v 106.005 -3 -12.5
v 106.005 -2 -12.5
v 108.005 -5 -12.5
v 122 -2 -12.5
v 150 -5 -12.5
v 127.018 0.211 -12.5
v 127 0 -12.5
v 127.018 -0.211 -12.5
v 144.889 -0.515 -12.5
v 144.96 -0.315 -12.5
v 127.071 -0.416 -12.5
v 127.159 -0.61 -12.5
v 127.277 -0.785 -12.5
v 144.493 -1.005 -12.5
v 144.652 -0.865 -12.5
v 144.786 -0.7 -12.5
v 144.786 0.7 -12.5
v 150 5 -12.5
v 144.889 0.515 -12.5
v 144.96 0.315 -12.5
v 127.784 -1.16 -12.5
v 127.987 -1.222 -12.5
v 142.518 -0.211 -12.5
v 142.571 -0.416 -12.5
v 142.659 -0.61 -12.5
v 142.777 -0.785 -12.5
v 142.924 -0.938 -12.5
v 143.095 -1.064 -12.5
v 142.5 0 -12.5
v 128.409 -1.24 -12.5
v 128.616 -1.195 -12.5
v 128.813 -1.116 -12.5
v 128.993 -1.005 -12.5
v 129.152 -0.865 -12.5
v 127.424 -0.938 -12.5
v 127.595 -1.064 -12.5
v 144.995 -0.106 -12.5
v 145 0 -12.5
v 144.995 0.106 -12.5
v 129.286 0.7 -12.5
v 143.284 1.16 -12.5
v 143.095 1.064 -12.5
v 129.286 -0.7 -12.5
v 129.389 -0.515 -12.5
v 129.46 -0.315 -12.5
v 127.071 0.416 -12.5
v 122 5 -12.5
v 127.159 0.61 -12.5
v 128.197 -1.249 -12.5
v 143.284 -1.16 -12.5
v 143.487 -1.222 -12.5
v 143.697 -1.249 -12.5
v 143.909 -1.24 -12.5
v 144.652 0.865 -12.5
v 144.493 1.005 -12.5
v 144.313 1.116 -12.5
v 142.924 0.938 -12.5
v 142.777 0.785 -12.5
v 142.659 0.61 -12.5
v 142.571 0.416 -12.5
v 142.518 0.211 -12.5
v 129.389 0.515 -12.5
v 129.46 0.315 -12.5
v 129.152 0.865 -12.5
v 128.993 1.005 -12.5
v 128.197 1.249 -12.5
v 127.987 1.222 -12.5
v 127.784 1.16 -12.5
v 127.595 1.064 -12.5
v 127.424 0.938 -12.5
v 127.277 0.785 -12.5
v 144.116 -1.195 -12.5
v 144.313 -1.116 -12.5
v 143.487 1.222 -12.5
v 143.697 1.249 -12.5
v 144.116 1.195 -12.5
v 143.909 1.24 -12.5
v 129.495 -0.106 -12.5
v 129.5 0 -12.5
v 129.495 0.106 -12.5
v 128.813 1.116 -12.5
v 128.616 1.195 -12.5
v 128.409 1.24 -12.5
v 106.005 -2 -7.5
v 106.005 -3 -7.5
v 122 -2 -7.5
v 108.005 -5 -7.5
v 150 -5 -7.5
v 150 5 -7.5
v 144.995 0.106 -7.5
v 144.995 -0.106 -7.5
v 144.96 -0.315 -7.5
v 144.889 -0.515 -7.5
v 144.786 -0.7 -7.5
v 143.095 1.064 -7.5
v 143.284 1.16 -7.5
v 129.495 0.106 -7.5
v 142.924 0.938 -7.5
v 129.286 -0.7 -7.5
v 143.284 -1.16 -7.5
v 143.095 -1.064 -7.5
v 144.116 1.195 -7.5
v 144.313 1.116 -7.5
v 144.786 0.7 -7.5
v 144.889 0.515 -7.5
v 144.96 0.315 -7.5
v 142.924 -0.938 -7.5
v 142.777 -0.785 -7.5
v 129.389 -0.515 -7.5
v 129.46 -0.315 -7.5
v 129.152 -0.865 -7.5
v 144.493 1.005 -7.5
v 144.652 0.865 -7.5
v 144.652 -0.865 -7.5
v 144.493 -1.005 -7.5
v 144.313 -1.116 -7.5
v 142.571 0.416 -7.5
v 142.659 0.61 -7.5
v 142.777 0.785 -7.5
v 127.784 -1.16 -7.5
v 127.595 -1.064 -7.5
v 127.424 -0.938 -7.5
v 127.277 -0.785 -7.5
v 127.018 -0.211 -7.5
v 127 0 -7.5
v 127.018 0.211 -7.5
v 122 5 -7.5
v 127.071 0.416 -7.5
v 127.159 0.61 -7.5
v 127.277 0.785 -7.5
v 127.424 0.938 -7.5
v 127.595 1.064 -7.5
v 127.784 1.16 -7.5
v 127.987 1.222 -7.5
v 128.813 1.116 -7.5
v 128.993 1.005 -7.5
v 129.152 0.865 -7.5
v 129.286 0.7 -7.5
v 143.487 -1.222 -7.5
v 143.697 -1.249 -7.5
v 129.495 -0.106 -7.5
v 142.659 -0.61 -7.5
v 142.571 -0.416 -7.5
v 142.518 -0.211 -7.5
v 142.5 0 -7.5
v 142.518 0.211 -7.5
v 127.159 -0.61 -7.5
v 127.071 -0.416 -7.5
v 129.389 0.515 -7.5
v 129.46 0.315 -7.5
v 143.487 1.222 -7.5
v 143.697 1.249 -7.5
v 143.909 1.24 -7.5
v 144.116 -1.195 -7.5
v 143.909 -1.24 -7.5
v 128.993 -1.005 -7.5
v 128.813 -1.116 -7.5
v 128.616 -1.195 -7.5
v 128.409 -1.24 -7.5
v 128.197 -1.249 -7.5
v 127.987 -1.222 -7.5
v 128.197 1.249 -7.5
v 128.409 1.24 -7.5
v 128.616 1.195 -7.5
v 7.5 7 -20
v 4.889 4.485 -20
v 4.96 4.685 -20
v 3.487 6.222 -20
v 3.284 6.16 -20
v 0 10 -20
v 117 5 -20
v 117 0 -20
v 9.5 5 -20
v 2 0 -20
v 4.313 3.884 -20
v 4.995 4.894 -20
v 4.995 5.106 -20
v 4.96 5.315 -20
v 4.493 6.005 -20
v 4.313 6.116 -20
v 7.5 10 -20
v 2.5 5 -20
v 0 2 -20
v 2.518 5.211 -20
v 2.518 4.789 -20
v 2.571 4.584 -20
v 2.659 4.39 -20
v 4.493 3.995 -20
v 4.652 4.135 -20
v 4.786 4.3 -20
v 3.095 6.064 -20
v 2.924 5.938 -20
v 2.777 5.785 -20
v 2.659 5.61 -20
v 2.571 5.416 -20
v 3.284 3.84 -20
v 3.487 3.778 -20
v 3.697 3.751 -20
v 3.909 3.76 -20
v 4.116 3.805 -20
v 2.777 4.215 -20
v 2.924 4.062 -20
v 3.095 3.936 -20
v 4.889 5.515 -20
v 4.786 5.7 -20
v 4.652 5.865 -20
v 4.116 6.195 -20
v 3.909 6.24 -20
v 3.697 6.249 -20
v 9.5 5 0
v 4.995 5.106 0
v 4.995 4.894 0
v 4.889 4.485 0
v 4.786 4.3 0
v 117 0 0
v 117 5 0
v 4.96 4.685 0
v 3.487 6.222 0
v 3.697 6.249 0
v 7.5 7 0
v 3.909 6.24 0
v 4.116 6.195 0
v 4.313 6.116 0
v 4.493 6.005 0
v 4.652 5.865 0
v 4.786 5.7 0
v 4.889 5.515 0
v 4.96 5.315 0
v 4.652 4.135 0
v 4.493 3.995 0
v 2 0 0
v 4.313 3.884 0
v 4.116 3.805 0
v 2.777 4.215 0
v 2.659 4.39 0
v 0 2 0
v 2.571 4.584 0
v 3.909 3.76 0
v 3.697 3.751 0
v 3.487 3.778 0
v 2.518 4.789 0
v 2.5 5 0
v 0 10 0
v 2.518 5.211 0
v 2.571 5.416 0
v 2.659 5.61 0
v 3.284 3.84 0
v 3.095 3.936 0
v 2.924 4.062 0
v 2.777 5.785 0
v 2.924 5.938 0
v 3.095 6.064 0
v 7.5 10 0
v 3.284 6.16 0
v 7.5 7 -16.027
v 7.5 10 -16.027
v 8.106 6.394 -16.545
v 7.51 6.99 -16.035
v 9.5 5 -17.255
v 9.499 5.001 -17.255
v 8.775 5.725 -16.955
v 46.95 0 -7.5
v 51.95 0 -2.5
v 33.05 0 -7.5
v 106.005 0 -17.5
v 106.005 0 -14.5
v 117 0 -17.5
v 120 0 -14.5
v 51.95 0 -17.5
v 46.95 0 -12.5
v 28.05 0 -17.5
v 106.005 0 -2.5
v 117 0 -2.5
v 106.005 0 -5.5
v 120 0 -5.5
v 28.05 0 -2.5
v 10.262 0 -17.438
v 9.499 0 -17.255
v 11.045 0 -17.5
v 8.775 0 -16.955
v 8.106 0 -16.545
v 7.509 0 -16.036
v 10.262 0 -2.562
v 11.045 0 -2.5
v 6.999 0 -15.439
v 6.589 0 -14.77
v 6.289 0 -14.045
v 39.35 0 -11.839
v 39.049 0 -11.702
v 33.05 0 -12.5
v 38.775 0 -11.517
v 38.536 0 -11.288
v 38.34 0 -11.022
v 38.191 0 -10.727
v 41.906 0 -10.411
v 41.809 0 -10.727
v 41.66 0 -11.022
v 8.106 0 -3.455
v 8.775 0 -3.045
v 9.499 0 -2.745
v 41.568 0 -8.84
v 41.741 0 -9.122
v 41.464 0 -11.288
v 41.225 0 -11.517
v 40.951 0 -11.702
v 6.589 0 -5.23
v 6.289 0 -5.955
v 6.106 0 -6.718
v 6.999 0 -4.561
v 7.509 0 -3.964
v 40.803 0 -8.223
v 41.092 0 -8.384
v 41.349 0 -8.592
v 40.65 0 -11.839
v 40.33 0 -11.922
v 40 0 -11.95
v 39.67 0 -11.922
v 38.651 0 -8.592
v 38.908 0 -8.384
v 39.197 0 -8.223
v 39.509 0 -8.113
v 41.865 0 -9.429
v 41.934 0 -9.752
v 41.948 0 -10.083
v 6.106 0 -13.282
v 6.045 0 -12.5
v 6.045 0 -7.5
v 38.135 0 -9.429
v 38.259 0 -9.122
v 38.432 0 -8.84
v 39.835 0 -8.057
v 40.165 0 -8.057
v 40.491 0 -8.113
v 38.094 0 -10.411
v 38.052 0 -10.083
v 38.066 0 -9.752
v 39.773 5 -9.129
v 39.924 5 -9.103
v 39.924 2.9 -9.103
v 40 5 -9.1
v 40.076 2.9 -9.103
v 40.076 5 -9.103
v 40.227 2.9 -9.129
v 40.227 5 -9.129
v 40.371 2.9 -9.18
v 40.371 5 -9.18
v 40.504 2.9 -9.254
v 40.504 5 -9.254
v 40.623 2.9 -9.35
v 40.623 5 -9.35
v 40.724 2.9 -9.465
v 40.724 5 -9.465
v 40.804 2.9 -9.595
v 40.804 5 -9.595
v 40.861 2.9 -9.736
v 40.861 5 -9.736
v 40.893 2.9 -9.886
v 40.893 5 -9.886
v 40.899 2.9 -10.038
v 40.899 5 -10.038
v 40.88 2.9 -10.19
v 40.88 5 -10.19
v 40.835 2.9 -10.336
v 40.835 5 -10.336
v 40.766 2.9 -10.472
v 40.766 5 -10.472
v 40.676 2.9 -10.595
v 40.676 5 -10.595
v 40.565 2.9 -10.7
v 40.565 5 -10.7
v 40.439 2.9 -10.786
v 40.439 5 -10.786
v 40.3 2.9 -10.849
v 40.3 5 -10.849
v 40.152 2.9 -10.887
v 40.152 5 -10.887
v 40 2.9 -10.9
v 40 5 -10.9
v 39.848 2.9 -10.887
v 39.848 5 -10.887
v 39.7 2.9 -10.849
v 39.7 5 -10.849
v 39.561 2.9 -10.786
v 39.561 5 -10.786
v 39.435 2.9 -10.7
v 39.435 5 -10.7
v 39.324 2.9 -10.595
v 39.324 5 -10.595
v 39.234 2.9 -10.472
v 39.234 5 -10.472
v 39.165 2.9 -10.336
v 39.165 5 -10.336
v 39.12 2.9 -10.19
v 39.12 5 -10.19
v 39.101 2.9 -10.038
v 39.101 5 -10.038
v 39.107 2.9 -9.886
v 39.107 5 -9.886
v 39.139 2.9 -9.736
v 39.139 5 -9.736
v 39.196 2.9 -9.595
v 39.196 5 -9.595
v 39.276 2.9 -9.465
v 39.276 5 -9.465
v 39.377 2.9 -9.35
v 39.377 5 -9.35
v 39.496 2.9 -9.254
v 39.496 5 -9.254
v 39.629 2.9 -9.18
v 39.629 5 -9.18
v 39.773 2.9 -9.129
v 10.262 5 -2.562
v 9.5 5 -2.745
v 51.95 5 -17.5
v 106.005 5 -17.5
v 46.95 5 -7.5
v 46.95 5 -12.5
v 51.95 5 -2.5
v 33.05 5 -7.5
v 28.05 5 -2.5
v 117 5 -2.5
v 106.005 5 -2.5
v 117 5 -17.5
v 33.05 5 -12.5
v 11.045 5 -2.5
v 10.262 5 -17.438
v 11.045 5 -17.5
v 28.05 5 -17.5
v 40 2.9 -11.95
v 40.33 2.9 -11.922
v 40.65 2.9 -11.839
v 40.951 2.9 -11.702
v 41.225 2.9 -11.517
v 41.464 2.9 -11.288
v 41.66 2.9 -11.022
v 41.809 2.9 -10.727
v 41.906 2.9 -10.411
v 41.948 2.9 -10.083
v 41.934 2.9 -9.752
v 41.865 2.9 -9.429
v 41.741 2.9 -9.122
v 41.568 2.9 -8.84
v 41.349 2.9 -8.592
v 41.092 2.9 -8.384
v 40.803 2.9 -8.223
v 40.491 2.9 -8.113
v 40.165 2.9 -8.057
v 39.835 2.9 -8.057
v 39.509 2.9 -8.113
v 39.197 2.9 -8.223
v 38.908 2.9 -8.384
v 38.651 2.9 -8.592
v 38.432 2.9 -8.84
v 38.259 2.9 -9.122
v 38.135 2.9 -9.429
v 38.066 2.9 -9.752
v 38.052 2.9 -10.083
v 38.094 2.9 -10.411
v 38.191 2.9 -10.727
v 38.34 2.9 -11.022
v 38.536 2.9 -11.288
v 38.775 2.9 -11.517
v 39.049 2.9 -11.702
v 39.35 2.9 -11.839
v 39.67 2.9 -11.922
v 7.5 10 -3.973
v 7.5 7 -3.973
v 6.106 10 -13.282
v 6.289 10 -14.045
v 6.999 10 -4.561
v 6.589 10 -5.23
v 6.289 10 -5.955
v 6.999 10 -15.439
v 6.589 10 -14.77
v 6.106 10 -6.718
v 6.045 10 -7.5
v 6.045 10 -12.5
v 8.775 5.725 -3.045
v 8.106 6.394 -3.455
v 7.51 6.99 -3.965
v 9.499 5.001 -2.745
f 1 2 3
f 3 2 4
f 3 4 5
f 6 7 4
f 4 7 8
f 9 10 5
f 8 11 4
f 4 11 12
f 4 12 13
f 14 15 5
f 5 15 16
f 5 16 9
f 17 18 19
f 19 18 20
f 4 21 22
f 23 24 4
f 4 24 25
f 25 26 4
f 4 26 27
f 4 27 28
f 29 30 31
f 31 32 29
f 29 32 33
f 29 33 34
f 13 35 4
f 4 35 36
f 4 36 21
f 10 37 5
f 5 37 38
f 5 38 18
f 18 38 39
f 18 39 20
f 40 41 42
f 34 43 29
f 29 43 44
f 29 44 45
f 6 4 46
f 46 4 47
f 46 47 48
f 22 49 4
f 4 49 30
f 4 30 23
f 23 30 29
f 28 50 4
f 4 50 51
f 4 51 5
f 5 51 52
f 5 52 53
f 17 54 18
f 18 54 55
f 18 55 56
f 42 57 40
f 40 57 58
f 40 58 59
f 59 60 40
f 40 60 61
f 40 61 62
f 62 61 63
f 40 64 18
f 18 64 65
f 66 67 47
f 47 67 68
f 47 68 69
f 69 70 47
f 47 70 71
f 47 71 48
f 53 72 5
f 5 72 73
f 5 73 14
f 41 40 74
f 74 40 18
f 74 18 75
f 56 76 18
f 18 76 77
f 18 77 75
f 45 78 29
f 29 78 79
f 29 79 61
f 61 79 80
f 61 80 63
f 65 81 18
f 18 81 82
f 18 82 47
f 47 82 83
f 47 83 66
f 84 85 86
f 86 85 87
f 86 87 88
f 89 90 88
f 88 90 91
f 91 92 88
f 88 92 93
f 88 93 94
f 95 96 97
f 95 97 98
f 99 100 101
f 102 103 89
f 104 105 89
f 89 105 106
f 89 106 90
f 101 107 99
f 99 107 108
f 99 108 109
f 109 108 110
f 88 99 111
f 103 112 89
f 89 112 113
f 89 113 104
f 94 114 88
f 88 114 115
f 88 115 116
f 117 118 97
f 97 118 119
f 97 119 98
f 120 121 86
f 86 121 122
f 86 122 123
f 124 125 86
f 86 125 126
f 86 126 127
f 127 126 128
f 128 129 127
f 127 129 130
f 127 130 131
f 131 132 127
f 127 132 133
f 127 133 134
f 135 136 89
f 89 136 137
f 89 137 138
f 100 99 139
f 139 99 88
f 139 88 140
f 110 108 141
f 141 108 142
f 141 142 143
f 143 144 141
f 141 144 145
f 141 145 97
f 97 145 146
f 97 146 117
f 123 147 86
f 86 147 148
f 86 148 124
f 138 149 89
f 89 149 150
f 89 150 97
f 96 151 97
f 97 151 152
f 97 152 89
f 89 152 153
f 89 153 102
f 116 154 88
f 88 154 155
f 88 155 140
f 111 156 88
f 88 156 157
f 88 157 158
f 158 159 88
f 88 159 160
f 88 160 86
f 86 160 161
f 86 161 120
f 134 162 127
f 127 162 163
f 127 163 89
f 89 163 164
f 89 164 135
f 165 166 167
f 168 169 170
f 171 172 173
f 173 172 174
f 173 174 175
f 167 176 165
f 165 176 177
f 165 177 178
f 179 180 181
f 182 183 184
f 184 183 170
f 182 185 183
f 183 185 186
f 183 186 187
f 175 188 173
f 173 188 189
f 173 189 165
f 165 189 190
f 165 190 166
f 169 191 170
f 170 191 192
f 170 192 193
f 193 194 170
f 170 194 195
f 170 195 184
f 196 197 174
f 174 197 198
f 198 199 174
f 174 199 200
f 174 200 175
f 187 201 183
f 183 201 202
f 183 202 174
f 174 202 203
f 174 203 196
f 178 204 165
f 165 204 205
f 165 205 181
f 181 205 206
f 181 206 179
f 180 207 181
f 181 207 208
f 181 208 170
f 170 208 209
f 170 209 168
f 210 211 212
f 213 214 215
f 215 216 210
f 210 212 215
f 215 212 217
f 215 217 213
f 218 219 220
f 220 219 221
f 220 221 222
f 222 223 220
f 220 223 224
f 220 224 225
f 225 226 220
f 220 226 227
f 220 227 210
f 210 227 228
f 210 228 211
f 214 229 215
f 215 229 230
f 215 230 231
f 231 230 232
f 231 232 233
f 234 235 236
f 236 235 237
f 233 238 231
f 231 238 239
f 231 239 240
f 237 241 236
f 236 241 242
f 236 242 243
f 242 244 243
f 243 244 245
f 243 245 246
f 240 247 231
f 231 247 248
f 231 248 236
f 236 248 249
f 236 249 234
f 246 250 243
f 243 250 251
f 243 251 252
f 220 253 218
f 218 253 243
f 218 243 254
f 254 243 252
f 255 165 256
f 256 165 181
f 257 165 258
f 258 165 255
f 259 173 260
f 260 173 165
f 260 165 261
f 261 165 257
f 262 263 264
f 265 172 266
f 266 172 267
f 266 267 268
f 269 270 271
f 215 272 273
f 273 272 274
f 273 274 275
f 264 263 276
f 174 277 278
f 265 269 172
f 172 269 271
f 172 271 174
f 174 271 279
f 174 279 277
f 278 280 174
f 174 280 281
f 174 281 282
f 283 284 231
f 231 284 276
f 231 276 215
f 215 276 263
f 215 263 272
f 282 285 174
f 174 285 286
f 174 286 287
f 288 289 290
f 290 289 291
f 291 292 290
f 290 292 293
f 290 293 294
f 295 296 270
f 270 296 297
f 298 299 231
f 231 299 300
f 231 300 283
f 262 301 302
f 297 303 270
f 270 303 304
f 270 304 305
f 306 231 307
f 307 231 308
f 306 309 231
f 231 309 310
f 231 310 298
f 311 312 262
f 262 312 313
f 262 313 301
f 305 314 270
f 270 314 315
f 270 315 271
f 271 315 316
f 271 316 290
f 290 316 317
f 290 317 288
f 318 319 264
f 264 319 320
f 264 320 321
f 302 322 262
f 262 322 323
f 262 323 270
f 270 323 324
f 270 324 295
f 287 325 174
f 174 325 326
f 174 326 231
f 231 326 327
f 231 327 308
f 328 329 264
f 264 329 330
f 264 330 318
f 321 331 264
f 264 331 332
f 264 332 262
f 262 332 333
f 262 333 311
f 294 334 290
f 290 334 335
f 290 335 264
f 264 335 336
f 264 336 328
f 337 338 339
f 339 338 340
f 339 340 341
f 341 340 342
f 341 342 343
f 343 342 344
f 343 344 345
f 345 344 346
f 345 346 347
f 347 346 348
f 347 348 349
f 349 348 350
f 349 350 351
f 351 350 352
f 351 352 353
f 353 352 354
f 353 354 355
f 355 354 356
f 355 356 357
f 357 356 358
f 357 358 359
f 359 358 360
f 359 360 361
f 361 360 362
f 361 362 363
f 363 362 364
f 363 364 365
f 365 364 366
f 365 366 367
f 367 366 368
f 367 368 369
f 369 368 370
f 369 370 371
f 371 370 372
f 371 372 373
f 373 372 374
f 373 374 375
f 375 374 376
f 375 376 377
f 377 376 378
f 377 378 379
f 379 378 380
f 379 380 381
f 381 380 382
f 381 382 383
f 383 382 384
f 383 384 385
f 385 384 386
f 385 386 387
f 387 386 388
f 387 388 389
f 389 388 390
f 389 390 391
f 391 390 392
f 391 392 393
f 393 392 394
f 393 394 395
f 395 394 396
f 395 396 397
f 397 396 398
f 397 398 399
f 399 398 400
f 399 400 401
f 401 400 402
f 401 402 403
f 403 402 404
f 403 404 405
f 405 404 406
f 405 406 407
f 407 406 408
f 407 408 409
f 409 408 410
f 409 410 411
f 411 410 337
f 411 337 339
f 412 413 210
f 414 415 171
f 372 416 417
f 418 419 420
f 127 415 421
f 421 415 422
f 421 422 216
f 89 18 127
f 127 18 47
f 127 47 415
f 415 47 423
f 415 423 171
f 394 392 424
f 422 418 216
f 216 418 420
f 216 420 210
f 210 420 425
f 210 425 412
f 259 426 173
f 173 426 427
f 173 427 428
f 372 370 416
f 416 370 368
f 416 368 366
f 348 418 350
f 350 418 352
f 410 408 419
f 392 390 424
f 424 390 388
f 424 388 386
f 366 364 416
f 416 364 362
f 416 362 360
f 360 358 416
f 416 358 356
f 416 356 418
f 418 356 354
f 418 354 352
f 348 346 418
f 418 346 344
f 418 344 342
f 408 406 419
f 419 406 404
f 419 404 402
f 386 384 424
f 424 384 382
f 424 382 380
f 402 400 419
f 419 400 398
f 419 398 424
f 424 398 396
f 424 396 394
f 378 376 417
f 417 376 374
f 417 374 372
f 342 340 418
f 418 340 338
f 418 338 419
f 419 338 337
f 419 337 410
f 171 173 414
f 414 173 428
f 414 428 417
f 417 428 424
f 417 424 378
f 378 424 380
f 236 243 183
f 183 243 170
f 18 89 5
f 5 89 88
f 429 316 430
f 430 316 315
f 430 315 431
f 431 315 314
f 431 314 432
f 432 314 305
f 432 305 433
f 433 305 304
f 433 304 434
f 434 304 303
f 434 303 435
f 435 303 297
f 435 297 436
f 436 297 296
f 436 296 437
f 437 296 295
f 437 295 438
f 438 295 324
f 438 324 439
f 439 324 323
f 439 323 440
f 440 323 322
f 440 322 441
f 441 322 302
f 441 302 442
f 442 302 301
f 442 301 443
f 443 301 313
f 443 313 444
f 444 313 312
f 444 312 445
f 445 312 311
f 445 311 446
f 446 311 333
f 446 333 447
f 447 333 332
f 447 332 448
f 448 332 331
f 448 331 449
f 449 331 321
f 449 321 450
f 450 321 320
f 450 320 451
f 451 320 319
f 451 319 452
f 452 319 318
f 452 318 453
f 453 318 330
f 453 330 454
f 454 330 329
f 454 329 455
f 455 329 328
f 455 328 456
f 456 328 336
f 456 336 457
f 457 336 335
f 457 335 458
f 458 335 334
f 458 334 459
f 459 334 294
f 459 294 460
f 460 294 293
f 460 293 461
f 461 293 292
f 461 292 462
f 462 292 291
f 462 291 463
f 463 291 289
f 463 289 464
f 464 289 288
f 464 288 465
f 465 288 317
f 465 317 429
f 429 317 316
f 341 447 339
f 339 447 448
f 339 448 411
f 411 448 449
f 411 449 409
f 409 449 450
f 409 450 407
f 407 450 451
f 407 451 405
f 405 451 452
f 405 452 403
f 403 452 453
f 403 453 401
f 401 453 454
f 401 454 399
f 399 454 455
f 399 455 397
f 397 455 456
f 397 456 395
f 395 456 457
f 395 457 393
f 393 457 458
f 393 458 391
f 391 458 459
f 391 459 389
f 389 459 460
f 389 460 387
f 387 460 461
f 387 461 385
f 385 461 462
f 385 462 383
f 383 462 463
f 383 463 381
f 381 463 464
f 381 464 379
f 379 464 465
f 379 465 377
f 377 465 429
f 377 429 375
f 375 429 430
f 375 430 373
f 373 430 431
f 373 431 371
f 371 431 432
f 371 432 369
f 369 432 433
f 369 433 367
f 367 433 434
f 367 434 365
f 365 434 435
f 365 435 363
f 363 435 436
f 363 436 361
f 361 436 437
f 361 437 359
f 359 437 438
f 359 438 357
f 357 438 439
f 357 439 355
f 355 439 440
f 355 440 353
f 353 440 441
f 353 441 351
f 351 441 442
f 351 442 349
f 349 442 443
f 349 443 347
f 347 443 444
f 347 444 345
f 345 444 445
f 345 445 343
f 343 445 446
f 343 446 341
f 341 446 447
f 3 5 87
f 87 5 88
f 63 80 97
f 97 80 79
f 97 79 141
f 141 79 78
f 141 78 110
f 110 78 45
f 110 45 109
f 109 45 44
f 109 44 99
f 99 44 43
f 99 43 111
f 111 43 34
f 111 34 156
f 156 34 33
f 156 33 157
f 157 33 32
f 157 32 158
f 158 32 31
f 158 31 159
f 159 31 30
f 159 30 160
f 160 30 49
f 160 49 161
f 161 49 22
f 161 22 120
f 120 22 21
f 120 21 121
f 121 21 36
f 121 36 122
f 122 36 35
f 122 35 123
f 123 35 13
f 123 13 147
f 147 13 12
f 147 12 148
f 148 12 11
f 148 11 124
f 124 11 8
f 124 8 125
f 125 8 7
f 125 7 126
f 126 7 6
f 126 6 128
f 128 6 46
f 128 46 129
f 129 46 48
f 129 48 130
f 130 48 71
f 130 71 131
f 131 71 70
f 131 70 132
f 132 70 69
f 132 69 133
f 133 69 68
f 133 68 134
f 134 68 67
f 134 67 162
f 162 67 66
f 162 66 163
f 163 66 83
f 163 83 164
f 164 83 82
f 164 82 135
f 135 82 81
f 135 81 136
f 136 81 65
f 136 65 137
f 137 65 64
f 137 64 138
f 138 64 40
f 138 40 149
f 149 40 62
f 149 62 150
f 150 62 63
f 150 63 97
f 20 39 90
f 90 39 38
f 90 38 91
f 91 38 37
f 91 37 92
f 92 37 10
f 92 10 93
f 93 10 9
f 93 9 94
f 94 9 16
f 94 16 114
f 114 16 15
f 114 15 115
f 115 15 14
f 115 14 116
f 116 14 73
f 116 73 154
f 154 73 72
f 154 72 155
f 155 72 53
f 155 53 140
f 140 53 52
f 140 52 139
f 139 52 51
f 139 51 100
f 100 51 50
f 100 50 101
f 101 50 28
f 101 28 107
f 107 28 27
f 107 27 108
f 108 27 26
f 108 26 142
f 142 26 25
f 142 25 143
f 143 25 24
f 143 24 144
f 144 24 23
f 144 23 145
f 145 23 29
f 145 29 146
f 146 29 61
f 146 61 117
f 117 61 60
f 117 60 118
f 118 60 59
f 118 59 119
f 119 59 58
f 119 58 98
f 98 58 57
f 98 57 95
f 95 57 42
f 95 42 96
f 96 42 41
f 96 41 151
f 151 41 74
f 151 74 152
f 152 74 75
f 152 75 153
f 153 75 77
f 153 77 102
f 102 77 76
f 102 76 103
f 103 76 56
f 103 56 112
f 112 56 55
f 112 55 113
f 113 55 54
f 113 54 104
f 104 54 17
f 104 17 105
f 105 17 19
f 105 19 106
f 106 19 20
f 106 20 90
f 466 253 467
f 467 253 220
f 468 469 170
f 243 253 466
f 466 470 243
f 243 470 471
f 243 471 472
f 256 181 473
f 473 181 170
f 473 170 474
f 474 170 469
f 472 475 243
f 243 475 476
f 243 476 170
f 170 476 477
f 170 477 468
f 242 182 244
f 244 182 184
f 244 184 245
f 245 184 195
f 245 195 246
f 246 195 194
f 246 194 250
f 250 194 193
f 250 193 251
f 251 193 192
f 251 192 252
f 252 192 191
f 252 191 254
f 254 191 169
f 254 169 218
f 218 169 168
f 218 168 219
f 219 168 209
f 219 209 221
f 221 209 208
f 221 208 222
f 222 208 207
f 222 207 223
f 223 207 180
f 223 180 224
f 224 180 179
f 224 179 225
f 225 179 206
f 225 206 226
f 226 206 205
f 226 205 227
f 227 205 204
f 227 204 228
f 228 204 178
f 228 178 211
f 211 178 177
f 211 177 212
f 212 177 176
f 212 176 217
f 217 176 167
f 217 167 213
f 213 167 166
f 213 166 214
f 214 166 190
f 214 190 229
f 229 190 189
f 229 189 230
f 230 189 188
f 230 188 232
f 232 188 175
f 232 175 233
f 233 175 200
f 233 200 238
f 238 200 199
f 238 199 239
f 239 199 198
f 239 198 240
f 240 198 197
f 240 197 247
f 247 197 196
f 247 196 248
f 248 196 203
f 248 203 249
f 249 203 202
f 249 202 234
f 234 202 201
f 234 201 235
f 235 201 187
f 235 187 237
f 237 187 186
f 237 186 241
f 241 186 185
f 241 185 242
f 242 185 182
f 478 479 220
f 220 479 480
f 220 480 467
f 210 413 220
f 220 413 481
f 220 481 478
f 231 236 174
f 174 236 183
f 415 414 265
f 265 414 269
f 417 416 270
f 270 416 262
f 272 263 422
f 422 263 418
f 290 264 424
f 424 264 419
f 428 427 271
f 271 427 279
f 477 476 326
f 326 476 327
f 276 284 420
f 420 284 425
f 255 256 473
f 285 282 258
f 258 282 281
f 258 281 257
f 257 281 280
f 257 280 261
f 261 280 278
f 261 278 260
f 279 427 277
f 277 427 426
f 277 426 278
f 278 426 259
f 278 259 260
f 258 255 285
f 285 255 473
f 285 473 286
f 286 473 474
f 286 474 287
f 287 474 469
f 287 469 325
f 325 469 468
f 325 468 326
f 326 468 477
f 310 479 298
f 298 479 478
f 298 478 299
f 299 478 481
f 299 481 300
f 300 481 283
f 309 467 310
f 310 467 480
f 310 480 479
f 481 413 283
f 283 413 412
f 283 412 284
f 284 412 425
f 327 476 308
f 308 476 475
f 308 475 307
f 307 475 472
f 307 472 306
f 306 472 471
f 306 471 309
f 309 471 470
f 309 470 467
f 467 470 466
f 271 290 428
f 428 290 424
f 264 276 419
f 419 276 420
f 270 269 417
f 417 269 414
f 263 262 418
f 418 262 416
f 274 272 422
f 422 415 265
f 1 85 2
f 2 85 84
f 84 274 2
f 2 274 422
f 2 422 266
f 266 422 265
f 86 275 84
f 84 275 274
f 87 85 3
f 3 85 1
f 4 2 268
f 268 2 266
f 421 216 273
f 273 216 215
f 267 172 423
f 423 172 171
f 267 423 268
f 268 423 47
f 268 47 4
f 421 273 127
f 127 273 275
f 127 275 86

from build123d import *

# Parameters (mm, degrees)
SKETCH1_W           = 150
SKETCH1_H           = 20
SKETCH1_R           = 0.9
BOSS_EXTRUDE1_DEPTH = 5
SKETCH2_R           = 1.95
CUT_EXTRUDE1_DEPTH  = 2.9
SKETCH3_W           = 55.59541546
SKETCH3_H           = 20
BOSS_EXTRUDE2_DEPTH = 5
SKETCH7_W           = 20
SKETCH7_H           = 5
CUT_EXTRUDE3_DEPTH  = 27.6
SKETCH5_R           = 1.25
CUT_EXTRUDE4_DEPTH  = 27.6
SKETCH8_W           = 7.5
SKETCH8_H           = 20
BOSS_EXTRUDE3_DEPTH = 5
SKETCH9_R           = 1.25
CUT_EXTRUDE5_DEPTH  = 43
CHAMFER2_SIZE       = 2
CHAMFER3_SIZE       = 2
CHAMFER4_SIZE       = 5
SKETCH12_W          = 65.05458454
SKETCH12_H          = 15
SKETCH12_W_2        = 27.005472272
CUT_EXTRUDE33_DEPTH = 43
FILLET3_R           = 5
CHAMFER5_SIZE       = 5
CUT_EXTRUDE35_DEPTH = 34
SKETCH14_W          = 15
SKETCH14_H          = 5
BOSS_EXTRUDE4_DEPTH = 6
BOSS_EXTRUDE5_DEPTH = 18
CHAMFER7_SIZE       = 2
BOSS_EXTRUDE6_DEPTH = 1
CHAMFER8_SIZE       = 5


with BuildPart() as part:
    # Sketch1 → Boss-Extrude1 (new body)
    with BuildSketch(Plane(origin=(0, 0, 0), x_dir=(1, 0, 0), z_dir=(0, 1, 0))):
        with Locations((75, 10)):
            Rectangle(SKETCH1_W, SKETCH1_H)
        with Locations(Location((40, 10, 0), (0, 0, 270))):
            Circle(SKETCH1_R, mode=Mode.SUBTRACT)
    extrude(amount=BOSS_EXTRUDE1_DEPTH)

    # Sketch2 → Cut-Extrude1 (cut)
    with BuildSketch(Plane.XZ):
        with Locations(Location((40, -10, 0), (0, 0, 270))):
            Circle(SKETCH2_R)
    extrude(amount=-CUT_EXTRUDE1_DEPTH, mode=Mode.SUBTRACT)

    # Sketch3 → Boss-Extrude2 (add)
    with BuildSketch(Plane.XZ):
        with Locations((122.20229227, -10)):
            Rectangle(SKETCH3_W, SKETCH3_H)
    extrude(amount=BOSS_EXTRUDE2_DEPTH)

    # Sketch7 → Cut-Extrude3 (cut)
    with BuildSketch(Plane.ZY.offset(-94.40458454)):
        with Locations((-10, -2.5)):
            Rectangle(SKETCH7_W, SKETCH7_H)
    extrude(amount=-CUT_EXTRUDE3_DEPTH, mode=Mode.SUBTRACT)

    # Sketch5 → Cut-Extrude4 (cut)
    with BuildSketch(Plane(origin=(0, 0, -20), x_dir=(-1, 0, 0), z_dir=(0, 0, -1))):
        with Locations((-128.25, 0)):
            Circle(SKETCH5_R)
        with Locations((-143.75, 0)):
            Circle(SKETCH5_R)
    extrude(amount=-CUT_EXTRUDE4_DEPTH, mode=Mode.SUBTRACT)

    # Sketch8 → Boss-Extrude3 (add)
    with BuildSketch(Plane(origin=(0, 5, 0), x_dir=(1, 0, 0), z_dir=(0, 1, 0))):
        with Locations((3.75, 10)):
            Rectangle(SKETCH8_W, SKETCH8_H)
    extrude(amount=BOSS_EXTRUDE3_DEPTH)

    # Sketch9 → Cut-Extrude5 (cut)
    with BuildSketch(Plane(origin=(0, 0, -20), x_dir=(-1, 0, 0), z_dir=(0, 0, -1))):
        with Locations((-3.75, 5)):
            Circle(SKETCH9_R)
    extrude(amount=-CUT_EXTRUDE5_DEPTH, mode=Mode.SUBTRACT)

    # Chamfer2
    chamfer2_edges = [part.edges().sort_by_distance(p)[0] for p in [
        (7.5, 5, -10),
    ]]
    chamfer(chamfer2_edges, length=CHAMFER2_SIZE)

    # Chamfer3
    chamfer3_edges = [part.edges().sort_by_distance(p)[0] for p in [
        (0, 0, -10),
    ]]
    chamfer(chamfer3_edges, length=CHAMFER3_SIZE)

    # Chamfer4
    chamfer4_edges = [part.edges().sort_by_distance(p)[0] for p in [
        (122.00458454, 0, -10),
    ]]
    chamfer(chamfer4_edges, length=CHAMFER4_SIZE - 0.0001)  # a hair under: the kernel refuses the full size

    # Sketch12 → Cut-Extrude33 (cut)
    with BuildSketch(Plane.XZ):
        with Locations((79.47729227, -10)):
            Rectangle(SKETCH12_W, SKETCH12_H)
        with Locations((19.547263864, -10)):
            Rectangle(SKETCH12_W_2, SKETCH12_H)
    extrude(amount=-CUT_EXTRUDE33_DEPTH, mode=Mode.SUBTRACT)

    # Fillet3
    fillet3_edges = [part.edges().sort_by_distance(p)[0] for p in [
        (6.044527728, 5, -17.5),
        (6.044527728, 5, -2.5),
    ]]
    fillet(fillet3_edges, radius=FILLET3_R)

    # Chamfer5
    chamfer5_edges = [part.edges().sort_by_distance(p)[0] for p in [
        (46.95, 2.5, -17.5),
        (46.95, 2.5, -2.5),
        (33.05, 2.5, -2.5),
        (33.05, 2.5, -17.5),
    ]]
    chamfer(chamfer5_edges, length=CHAMFER5_SIZE)

    # Sketch13 → Cut-Extrude35 (cut)
    with BuildSketch(Plane(origin=(150, 0, 0), x_dir=(0, 0, -1), z_dir=(1, 0, 0))):
        Polygon((5, 5), (0, 5), (0, -5), (5, -5), (7.5, -5), (7.5, 5), align=None)
        Polygon((15, 5), (12.5, 5), (12.5, -5), (15, -5), (20, -5), (20, 5), align=None)
    extrude(amount=-CUT_EXTRUDE35_DEPTH, mode=Mode.SUBTRACT)

    # Sketch14 → Boss-Extrude4 (add)
    with BuildSketch(Plane.ZY.offset(-112.00458454)):
        with Locations((-10, 2.5)):
            Rectangle(SKETCH14_W, SKETCH14_H)
    extrude(amount=BOSS_EXTRUDE4_DEPTH)

    # Sketch15 → Boss-Extrude5 (add)
    with BuildSketch(Plane.ZY.offset(-106.00458454)):
        Polygon((-10, 5), (-7.5, 5), (-7.5, -5), (-12.5, -5), (-12.5, 5), align=None)
    extrude(amount=-BOSS_EXTRUDE5_DEPTH)

    # Chamfer7
    chamfer7_edges = [part.edges().sort_by_distance(p)[0] for p in [
        (106.00458454, -5, -10),
        (111.00229227, 0, -7.5),
        (111.00229227, 0, -12.5),
    ]]
    chamfer(chamfer7_edges, length=CHAMFER7_SIZE)

    # Sketch17 → Boss-Extrude6 (add)
    with BuildSketch(Plane(origin=(116, 0, 0), x_dir=(0, 0, -1), z_dir=(1, 0, 0))):
        Polygon((0, 0), (5.5, 0), (7.5, -2), (7.5, 5), (0, 5), align=None)
        Polygon((12.5, 5), (12.5, -2), (14.5, 0), (20, 0), (20, 5), align=None)
    extrude(amount=BOSS_EXTRUDE6_DEPTH)

    # Chamfer8
    chamfer8_edges = [part.edges().sort_by_distance(p)[0] for p in [
        (117, 1.5, -12.5),
        (117, 1.5, -7.5),
    ]]
    chamfer(chamfer8_edges, length=CHAMFER8_SIZE)


solid = part.part
